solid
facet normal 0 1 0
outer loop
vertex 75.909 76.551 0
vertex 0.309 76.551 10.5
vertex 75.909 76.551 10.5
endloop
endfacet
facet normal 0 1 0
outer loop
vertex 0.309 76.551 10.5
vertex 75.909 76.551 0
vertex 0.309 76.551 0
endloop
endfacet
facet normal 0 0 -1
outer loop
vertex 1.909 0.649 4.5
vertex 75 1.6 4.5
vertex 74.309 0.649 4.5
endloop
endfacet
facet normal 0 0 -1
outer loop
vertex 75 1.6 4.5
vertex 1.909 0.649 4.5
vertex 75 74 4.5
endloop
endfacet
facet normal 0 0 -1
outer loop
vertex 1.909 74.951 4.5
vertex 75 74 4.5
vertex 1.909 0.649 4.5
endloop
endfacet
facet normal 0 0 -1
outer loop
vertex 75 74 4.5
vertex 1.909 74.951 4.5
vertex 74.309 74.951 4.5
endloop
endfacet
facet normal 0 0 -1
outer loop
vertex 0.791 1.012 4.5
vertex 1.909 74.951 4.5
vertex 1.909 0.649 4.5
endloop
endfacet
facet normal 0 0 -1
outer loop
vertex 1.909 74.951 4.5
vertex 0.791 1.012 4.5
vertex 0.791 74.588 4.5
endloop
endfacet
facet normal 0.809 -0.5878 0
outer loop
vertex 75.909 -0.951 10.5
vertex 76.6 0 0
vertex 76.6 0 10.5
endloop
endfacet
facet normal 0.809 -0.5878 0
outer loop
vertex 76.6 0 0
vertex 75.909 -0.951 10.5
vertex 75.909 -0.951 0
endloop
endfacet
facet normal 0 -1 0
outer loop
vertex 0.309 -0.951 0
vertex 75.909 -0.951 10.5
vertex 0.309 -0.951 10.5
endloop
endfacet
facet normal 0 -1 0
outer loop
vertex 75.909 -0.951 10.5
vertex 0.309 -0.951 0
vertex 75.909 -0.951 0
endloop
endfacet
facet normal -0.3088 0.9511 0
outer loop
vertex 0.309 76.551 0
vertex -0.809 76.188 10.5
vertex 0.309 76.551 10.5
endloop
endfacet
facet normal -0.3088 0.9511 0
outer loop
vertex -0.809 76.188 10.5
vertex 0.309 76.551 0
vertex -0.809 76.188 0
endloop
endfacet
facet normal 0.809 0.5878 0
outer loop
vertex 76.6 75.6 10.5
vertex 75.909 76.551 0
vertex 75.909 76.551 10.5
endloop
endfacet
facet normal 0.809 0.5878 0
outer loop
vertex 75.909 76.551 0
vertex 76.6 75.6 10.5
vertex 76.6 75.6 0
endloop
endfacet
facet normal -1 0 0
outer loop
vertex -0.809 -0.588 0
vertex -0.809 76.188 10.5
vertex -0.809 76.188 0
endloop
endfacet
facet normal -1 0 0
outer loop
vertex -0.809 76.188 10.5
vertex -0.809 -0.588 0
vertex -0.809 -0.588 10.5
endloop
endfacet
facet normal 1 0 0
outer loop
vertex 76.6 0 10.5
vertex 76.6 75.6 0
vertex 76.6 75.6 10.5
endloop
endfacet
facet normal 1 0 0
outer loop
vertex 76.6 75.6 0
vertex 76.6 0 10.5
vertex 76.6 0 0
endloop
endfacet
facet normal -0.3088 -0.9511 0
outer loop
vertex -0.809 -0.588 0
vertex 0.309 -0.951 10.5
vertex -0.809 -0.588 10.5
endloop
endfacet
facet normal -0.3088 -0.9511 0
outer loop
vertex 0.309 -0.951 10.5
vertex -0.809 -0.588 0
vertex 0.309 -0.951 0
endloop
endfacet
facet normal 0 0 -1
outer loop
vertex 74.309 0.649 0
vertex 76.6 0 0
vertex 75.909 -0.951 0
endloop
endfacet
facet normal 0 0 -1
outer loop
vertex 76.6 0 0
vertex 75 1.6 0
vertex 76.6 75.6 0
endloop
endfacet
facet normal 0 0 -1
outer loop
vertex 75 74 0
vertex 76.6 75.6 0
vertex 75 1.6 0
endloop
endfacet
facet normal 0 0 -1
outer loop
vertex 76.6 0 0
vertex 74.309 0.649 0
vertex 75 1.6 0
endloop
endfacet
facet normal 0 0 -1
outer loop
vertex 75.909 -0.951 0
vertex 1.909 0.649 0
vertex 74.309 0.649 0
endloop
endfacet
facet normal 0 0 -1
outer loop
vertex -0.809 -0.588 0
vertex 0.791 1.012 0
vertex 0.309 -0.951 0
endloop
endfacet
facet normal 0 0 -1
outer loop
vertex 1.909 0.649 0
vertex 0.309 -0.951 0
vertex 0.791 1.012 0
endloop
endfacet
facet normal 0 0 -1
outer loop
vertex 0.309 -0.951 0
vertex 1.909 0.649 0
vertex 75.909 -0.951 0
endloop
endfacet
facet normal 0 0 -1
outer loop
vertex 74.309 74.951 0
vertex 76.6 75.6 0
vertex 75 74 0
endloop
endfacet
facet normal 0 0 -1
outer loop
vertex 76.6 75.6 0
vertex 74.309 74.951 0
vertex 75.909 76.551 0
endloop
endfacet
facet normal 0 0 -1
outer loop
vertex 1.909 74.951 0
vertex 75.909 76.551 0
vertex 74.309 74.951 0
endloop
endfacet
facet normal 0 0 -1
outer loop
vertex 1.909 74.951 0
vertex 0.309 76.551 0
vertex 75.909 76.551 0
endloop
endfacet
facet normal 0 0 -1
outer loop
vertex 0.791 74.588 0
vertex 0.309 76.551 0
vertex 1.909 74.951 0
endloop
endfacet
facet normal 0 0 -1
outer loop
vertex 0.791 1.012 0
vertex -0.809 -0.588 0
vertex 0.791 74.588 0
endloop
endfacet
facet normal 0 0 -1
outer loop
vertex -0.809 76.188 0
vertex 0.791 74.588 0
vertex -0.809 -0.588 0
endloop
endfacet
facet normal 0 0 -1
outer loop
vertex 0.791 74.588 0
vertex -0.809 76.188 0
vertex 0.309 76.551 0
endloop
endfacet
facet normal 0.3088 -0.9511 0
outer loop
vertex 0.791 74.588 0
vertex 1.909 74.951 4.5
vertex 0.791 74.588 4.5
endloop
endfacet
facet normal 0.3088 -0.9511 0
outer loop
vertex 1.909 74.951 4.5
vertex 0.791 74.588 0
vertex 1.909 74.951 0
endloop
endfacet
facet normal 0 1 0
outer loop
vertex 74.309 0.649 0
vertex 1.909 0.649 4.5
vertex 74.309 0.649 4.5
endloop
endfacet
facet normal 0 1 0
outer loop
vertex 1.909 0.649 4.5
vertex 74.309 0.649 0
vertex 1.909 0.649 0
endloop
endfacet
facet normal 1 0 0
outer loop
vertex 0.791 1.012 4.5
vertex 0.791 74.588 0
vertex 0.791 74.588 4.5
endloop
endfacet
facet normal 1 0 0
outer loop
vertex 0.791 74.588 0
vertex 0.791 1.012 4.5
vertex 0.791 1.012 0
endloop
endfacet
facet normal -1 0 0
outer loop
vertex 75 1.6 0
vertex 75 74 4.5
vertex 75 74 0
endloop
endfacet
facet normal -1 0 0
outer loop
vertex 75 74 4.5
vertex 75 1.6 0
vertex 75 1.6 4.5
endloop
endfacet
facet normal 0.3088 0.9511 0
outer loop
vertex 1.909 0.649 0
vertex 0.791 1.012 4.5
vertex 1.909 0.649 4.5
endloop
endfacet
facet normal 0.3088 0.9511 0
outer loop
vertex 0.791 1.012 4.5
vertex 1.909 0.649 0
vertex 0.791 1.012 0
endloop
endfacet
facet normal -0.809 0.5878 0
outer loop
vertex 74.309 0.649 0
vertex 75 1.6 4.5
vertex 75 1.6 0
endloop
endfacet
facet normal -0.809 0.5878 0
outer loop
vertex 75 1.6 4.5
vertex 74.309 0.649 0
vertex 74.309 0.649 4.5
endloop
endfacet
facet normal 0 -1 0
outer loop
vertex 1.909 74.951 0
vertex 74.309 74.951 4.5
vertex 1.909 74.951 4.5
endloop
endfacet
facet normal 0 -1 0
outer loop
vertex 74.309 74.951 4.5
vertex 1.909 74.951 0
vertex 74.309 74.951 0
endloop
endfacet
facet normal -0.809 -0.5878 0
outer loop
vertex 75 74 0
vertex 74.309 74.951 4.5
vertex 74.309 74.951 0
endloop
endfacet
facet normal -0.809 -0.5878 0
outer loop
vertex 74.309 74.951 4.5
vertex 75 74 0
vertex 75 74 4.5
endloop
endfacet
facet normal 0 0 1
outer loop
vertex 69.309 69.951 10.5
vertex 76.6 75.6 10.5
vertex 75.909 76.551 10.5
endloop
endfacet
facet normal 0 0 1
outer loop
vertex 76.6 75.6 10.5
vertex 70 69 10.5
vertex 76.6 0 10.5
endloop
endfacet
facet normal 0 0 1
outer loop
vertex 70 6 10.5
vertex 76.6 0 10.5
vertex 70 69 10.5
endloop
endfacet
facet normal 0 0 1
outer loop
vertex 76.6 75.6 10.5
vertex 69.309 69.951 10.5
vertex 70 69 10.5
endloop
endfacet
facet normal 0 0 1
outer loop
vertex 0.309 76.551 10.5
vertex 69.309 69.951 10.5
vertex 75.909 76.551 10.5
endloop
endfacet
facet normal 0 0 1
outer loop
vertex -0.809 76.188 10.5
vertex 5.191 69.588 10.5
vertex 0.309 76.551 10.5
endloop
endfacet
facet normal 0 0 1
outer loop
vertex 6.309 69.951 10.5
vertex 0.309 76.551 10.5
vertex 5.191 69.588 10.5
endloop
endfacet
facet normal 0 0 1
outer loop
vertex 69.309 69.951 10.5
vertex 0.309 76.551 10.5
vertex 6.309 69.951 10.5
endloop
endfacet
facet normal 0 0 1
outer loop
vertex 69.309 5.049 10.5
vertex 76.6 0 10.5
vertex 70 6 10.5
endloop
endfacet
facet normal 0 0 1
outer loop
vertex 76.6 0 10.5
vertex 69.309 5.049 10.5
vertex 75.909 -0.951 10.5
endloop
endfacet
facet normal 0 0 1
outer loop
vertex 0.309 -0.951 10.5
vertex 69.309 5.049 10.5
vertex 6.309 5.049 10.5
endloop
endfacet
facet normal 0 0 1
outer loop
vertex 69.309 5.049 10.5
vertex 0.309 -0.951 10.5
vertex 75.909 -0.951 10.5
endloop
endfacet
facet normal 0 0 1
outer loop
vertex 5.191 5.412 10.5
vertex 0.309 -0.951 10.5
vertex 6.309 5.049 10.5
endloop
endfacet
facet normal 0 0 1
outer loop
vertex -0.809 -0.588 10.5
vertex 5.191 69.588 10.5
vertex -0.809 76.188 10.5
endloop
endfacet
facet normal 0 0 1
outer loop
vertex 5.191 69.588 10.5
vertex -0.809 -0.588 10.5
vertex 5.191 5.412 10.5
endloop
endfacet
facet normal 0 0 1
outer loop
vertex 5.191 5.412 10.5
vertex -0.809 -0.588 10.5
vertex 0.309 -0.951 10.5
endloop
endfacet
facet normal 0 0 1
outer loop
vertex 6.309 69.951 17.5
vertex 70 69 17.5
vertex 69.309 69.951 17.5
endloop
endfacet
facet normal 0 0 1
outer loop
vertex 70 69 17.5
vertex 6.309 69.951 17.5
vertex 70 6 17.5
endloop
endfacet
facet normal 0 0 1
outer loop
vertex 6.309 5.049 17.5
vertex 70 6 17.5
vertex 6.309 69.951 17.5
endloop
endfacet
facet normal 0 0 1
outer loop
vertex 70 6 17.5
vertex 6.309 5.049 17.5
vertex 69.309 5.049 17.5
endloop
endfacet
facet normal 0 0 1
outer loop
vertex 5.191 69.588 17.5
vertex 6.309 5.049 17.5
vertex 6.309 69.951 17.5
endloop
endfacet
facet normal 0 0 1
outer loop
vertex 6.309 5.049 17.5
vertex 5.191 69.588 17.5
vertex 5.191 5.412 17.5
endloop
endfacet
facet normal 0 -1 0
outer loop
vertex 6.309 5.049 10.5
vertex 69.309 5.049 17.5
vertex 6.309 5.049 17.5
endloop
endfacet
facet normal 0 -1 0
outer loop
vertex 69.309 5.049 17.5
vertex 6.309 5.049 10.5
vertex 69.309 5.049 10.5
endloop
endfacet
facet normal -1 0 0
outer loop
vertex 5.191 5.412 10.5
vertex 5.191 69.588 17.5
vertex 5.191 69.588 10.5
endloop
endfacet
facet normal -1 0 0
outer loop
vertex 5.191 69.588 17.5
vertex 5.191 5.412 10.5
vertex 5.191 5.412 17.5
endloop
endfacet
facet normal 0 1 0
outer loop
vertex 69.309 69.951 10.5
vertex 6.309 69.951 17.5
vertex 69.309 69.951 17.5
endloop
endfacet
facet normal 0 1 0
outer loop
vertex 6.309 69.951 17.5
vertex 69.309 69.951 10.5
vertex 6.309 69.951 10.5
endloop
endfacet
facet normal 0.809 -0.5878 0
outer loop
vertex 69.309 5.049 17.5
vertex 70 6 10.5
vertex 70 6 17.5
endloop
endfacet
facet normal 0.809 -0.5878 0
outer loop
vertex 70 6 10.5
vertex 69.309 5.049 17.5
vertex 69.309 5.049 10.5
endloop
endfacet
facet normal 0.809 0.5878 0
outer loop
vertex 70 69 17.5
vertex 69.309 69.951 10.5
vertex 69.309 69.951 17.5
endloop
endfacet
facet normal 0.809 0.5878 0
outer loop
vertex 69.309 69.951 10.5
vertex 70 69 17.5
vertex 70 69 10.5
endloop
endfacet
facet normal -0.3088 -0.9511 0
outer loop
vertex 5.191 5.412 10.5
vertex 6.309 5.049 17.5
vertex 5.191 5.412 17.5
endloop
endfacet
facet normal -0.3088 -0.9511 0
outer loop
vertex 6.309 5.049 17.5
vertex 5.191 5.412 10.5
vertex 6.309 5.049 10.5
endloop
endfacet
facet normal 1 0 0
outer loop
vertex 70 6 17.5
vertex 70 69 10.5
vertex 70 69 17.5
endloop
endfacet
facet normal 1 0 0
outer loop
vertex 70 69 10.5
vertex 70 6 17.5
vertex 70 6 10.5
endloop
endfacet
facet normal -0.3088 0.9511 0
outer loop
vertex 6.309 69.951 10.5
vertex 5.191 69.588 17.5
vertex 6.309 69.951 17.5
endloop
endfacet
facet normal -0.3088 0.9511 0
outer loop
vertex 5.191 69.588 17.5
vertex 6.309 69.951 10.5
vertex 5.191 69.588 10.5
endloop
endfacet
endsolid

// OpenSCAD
length = 75.6;
lip_width = 3;
lip_depth = 4.5;
lip_length = length;
lip_thickness = 1.6;
base_height = 6;
base_x_offset = 0;
base_y_offset = 0;
base_z_offset = lip_depth;
base_length = length;
cap_x_offset = 6;
cap_y_offset = 6;
cap_z_offset = lip_depth + base_height;
cap_length = 63;
cap_height = 7;
base_dimentions = [[0, 0, 0], [base_length, 0, 0], [0, base_length, 0], [base_length, base_length, 0]];
lip_dimentions = [[0, 0, 0], [lip_length, 0, 0], [0, lip_length, 0], [lip_length, lip_length, 0]];
negative_lip_dimentions = [[lip_thickness, lip_thickness, 0], [lip_length -lip_thickness, lip_thickness, 0], [lip_thickness, lip_length -lip_thickness, 0], [lip_length -lip_thickness, lip_length -lip_thickness, 0]];
cap_dimentions = [[0, 0, 0], [cap_length, 0, 0], [0, cap_length, 0], [cap_length, cap_length, 0]];

difference(){
	hull(){
		for(dimention = lip_dimentions){
			translate(dimention){
				cylinder(lip_depth);
			}
		}
	}
	hull(){
		for(dimention = negative_lip_dimentions){
			translate(dimention){
				cylinder(lip_depth);
			}
		}
	}
}

translate([base_x_offset, base_y_offset, base_z_offset]){
	hull(){
		for (dimention = base_dimentions){
				translate(dimention){
					cylinder(base_height);
				}
			}
		}
}

translate([cap_x_offset, cap_y_offset, cap_z_offset]){
	hull(){
		for (dimention = cap_dimentions){
				translate(dimention){
					cylinder(cap_height);
				}
			}
		}
}
